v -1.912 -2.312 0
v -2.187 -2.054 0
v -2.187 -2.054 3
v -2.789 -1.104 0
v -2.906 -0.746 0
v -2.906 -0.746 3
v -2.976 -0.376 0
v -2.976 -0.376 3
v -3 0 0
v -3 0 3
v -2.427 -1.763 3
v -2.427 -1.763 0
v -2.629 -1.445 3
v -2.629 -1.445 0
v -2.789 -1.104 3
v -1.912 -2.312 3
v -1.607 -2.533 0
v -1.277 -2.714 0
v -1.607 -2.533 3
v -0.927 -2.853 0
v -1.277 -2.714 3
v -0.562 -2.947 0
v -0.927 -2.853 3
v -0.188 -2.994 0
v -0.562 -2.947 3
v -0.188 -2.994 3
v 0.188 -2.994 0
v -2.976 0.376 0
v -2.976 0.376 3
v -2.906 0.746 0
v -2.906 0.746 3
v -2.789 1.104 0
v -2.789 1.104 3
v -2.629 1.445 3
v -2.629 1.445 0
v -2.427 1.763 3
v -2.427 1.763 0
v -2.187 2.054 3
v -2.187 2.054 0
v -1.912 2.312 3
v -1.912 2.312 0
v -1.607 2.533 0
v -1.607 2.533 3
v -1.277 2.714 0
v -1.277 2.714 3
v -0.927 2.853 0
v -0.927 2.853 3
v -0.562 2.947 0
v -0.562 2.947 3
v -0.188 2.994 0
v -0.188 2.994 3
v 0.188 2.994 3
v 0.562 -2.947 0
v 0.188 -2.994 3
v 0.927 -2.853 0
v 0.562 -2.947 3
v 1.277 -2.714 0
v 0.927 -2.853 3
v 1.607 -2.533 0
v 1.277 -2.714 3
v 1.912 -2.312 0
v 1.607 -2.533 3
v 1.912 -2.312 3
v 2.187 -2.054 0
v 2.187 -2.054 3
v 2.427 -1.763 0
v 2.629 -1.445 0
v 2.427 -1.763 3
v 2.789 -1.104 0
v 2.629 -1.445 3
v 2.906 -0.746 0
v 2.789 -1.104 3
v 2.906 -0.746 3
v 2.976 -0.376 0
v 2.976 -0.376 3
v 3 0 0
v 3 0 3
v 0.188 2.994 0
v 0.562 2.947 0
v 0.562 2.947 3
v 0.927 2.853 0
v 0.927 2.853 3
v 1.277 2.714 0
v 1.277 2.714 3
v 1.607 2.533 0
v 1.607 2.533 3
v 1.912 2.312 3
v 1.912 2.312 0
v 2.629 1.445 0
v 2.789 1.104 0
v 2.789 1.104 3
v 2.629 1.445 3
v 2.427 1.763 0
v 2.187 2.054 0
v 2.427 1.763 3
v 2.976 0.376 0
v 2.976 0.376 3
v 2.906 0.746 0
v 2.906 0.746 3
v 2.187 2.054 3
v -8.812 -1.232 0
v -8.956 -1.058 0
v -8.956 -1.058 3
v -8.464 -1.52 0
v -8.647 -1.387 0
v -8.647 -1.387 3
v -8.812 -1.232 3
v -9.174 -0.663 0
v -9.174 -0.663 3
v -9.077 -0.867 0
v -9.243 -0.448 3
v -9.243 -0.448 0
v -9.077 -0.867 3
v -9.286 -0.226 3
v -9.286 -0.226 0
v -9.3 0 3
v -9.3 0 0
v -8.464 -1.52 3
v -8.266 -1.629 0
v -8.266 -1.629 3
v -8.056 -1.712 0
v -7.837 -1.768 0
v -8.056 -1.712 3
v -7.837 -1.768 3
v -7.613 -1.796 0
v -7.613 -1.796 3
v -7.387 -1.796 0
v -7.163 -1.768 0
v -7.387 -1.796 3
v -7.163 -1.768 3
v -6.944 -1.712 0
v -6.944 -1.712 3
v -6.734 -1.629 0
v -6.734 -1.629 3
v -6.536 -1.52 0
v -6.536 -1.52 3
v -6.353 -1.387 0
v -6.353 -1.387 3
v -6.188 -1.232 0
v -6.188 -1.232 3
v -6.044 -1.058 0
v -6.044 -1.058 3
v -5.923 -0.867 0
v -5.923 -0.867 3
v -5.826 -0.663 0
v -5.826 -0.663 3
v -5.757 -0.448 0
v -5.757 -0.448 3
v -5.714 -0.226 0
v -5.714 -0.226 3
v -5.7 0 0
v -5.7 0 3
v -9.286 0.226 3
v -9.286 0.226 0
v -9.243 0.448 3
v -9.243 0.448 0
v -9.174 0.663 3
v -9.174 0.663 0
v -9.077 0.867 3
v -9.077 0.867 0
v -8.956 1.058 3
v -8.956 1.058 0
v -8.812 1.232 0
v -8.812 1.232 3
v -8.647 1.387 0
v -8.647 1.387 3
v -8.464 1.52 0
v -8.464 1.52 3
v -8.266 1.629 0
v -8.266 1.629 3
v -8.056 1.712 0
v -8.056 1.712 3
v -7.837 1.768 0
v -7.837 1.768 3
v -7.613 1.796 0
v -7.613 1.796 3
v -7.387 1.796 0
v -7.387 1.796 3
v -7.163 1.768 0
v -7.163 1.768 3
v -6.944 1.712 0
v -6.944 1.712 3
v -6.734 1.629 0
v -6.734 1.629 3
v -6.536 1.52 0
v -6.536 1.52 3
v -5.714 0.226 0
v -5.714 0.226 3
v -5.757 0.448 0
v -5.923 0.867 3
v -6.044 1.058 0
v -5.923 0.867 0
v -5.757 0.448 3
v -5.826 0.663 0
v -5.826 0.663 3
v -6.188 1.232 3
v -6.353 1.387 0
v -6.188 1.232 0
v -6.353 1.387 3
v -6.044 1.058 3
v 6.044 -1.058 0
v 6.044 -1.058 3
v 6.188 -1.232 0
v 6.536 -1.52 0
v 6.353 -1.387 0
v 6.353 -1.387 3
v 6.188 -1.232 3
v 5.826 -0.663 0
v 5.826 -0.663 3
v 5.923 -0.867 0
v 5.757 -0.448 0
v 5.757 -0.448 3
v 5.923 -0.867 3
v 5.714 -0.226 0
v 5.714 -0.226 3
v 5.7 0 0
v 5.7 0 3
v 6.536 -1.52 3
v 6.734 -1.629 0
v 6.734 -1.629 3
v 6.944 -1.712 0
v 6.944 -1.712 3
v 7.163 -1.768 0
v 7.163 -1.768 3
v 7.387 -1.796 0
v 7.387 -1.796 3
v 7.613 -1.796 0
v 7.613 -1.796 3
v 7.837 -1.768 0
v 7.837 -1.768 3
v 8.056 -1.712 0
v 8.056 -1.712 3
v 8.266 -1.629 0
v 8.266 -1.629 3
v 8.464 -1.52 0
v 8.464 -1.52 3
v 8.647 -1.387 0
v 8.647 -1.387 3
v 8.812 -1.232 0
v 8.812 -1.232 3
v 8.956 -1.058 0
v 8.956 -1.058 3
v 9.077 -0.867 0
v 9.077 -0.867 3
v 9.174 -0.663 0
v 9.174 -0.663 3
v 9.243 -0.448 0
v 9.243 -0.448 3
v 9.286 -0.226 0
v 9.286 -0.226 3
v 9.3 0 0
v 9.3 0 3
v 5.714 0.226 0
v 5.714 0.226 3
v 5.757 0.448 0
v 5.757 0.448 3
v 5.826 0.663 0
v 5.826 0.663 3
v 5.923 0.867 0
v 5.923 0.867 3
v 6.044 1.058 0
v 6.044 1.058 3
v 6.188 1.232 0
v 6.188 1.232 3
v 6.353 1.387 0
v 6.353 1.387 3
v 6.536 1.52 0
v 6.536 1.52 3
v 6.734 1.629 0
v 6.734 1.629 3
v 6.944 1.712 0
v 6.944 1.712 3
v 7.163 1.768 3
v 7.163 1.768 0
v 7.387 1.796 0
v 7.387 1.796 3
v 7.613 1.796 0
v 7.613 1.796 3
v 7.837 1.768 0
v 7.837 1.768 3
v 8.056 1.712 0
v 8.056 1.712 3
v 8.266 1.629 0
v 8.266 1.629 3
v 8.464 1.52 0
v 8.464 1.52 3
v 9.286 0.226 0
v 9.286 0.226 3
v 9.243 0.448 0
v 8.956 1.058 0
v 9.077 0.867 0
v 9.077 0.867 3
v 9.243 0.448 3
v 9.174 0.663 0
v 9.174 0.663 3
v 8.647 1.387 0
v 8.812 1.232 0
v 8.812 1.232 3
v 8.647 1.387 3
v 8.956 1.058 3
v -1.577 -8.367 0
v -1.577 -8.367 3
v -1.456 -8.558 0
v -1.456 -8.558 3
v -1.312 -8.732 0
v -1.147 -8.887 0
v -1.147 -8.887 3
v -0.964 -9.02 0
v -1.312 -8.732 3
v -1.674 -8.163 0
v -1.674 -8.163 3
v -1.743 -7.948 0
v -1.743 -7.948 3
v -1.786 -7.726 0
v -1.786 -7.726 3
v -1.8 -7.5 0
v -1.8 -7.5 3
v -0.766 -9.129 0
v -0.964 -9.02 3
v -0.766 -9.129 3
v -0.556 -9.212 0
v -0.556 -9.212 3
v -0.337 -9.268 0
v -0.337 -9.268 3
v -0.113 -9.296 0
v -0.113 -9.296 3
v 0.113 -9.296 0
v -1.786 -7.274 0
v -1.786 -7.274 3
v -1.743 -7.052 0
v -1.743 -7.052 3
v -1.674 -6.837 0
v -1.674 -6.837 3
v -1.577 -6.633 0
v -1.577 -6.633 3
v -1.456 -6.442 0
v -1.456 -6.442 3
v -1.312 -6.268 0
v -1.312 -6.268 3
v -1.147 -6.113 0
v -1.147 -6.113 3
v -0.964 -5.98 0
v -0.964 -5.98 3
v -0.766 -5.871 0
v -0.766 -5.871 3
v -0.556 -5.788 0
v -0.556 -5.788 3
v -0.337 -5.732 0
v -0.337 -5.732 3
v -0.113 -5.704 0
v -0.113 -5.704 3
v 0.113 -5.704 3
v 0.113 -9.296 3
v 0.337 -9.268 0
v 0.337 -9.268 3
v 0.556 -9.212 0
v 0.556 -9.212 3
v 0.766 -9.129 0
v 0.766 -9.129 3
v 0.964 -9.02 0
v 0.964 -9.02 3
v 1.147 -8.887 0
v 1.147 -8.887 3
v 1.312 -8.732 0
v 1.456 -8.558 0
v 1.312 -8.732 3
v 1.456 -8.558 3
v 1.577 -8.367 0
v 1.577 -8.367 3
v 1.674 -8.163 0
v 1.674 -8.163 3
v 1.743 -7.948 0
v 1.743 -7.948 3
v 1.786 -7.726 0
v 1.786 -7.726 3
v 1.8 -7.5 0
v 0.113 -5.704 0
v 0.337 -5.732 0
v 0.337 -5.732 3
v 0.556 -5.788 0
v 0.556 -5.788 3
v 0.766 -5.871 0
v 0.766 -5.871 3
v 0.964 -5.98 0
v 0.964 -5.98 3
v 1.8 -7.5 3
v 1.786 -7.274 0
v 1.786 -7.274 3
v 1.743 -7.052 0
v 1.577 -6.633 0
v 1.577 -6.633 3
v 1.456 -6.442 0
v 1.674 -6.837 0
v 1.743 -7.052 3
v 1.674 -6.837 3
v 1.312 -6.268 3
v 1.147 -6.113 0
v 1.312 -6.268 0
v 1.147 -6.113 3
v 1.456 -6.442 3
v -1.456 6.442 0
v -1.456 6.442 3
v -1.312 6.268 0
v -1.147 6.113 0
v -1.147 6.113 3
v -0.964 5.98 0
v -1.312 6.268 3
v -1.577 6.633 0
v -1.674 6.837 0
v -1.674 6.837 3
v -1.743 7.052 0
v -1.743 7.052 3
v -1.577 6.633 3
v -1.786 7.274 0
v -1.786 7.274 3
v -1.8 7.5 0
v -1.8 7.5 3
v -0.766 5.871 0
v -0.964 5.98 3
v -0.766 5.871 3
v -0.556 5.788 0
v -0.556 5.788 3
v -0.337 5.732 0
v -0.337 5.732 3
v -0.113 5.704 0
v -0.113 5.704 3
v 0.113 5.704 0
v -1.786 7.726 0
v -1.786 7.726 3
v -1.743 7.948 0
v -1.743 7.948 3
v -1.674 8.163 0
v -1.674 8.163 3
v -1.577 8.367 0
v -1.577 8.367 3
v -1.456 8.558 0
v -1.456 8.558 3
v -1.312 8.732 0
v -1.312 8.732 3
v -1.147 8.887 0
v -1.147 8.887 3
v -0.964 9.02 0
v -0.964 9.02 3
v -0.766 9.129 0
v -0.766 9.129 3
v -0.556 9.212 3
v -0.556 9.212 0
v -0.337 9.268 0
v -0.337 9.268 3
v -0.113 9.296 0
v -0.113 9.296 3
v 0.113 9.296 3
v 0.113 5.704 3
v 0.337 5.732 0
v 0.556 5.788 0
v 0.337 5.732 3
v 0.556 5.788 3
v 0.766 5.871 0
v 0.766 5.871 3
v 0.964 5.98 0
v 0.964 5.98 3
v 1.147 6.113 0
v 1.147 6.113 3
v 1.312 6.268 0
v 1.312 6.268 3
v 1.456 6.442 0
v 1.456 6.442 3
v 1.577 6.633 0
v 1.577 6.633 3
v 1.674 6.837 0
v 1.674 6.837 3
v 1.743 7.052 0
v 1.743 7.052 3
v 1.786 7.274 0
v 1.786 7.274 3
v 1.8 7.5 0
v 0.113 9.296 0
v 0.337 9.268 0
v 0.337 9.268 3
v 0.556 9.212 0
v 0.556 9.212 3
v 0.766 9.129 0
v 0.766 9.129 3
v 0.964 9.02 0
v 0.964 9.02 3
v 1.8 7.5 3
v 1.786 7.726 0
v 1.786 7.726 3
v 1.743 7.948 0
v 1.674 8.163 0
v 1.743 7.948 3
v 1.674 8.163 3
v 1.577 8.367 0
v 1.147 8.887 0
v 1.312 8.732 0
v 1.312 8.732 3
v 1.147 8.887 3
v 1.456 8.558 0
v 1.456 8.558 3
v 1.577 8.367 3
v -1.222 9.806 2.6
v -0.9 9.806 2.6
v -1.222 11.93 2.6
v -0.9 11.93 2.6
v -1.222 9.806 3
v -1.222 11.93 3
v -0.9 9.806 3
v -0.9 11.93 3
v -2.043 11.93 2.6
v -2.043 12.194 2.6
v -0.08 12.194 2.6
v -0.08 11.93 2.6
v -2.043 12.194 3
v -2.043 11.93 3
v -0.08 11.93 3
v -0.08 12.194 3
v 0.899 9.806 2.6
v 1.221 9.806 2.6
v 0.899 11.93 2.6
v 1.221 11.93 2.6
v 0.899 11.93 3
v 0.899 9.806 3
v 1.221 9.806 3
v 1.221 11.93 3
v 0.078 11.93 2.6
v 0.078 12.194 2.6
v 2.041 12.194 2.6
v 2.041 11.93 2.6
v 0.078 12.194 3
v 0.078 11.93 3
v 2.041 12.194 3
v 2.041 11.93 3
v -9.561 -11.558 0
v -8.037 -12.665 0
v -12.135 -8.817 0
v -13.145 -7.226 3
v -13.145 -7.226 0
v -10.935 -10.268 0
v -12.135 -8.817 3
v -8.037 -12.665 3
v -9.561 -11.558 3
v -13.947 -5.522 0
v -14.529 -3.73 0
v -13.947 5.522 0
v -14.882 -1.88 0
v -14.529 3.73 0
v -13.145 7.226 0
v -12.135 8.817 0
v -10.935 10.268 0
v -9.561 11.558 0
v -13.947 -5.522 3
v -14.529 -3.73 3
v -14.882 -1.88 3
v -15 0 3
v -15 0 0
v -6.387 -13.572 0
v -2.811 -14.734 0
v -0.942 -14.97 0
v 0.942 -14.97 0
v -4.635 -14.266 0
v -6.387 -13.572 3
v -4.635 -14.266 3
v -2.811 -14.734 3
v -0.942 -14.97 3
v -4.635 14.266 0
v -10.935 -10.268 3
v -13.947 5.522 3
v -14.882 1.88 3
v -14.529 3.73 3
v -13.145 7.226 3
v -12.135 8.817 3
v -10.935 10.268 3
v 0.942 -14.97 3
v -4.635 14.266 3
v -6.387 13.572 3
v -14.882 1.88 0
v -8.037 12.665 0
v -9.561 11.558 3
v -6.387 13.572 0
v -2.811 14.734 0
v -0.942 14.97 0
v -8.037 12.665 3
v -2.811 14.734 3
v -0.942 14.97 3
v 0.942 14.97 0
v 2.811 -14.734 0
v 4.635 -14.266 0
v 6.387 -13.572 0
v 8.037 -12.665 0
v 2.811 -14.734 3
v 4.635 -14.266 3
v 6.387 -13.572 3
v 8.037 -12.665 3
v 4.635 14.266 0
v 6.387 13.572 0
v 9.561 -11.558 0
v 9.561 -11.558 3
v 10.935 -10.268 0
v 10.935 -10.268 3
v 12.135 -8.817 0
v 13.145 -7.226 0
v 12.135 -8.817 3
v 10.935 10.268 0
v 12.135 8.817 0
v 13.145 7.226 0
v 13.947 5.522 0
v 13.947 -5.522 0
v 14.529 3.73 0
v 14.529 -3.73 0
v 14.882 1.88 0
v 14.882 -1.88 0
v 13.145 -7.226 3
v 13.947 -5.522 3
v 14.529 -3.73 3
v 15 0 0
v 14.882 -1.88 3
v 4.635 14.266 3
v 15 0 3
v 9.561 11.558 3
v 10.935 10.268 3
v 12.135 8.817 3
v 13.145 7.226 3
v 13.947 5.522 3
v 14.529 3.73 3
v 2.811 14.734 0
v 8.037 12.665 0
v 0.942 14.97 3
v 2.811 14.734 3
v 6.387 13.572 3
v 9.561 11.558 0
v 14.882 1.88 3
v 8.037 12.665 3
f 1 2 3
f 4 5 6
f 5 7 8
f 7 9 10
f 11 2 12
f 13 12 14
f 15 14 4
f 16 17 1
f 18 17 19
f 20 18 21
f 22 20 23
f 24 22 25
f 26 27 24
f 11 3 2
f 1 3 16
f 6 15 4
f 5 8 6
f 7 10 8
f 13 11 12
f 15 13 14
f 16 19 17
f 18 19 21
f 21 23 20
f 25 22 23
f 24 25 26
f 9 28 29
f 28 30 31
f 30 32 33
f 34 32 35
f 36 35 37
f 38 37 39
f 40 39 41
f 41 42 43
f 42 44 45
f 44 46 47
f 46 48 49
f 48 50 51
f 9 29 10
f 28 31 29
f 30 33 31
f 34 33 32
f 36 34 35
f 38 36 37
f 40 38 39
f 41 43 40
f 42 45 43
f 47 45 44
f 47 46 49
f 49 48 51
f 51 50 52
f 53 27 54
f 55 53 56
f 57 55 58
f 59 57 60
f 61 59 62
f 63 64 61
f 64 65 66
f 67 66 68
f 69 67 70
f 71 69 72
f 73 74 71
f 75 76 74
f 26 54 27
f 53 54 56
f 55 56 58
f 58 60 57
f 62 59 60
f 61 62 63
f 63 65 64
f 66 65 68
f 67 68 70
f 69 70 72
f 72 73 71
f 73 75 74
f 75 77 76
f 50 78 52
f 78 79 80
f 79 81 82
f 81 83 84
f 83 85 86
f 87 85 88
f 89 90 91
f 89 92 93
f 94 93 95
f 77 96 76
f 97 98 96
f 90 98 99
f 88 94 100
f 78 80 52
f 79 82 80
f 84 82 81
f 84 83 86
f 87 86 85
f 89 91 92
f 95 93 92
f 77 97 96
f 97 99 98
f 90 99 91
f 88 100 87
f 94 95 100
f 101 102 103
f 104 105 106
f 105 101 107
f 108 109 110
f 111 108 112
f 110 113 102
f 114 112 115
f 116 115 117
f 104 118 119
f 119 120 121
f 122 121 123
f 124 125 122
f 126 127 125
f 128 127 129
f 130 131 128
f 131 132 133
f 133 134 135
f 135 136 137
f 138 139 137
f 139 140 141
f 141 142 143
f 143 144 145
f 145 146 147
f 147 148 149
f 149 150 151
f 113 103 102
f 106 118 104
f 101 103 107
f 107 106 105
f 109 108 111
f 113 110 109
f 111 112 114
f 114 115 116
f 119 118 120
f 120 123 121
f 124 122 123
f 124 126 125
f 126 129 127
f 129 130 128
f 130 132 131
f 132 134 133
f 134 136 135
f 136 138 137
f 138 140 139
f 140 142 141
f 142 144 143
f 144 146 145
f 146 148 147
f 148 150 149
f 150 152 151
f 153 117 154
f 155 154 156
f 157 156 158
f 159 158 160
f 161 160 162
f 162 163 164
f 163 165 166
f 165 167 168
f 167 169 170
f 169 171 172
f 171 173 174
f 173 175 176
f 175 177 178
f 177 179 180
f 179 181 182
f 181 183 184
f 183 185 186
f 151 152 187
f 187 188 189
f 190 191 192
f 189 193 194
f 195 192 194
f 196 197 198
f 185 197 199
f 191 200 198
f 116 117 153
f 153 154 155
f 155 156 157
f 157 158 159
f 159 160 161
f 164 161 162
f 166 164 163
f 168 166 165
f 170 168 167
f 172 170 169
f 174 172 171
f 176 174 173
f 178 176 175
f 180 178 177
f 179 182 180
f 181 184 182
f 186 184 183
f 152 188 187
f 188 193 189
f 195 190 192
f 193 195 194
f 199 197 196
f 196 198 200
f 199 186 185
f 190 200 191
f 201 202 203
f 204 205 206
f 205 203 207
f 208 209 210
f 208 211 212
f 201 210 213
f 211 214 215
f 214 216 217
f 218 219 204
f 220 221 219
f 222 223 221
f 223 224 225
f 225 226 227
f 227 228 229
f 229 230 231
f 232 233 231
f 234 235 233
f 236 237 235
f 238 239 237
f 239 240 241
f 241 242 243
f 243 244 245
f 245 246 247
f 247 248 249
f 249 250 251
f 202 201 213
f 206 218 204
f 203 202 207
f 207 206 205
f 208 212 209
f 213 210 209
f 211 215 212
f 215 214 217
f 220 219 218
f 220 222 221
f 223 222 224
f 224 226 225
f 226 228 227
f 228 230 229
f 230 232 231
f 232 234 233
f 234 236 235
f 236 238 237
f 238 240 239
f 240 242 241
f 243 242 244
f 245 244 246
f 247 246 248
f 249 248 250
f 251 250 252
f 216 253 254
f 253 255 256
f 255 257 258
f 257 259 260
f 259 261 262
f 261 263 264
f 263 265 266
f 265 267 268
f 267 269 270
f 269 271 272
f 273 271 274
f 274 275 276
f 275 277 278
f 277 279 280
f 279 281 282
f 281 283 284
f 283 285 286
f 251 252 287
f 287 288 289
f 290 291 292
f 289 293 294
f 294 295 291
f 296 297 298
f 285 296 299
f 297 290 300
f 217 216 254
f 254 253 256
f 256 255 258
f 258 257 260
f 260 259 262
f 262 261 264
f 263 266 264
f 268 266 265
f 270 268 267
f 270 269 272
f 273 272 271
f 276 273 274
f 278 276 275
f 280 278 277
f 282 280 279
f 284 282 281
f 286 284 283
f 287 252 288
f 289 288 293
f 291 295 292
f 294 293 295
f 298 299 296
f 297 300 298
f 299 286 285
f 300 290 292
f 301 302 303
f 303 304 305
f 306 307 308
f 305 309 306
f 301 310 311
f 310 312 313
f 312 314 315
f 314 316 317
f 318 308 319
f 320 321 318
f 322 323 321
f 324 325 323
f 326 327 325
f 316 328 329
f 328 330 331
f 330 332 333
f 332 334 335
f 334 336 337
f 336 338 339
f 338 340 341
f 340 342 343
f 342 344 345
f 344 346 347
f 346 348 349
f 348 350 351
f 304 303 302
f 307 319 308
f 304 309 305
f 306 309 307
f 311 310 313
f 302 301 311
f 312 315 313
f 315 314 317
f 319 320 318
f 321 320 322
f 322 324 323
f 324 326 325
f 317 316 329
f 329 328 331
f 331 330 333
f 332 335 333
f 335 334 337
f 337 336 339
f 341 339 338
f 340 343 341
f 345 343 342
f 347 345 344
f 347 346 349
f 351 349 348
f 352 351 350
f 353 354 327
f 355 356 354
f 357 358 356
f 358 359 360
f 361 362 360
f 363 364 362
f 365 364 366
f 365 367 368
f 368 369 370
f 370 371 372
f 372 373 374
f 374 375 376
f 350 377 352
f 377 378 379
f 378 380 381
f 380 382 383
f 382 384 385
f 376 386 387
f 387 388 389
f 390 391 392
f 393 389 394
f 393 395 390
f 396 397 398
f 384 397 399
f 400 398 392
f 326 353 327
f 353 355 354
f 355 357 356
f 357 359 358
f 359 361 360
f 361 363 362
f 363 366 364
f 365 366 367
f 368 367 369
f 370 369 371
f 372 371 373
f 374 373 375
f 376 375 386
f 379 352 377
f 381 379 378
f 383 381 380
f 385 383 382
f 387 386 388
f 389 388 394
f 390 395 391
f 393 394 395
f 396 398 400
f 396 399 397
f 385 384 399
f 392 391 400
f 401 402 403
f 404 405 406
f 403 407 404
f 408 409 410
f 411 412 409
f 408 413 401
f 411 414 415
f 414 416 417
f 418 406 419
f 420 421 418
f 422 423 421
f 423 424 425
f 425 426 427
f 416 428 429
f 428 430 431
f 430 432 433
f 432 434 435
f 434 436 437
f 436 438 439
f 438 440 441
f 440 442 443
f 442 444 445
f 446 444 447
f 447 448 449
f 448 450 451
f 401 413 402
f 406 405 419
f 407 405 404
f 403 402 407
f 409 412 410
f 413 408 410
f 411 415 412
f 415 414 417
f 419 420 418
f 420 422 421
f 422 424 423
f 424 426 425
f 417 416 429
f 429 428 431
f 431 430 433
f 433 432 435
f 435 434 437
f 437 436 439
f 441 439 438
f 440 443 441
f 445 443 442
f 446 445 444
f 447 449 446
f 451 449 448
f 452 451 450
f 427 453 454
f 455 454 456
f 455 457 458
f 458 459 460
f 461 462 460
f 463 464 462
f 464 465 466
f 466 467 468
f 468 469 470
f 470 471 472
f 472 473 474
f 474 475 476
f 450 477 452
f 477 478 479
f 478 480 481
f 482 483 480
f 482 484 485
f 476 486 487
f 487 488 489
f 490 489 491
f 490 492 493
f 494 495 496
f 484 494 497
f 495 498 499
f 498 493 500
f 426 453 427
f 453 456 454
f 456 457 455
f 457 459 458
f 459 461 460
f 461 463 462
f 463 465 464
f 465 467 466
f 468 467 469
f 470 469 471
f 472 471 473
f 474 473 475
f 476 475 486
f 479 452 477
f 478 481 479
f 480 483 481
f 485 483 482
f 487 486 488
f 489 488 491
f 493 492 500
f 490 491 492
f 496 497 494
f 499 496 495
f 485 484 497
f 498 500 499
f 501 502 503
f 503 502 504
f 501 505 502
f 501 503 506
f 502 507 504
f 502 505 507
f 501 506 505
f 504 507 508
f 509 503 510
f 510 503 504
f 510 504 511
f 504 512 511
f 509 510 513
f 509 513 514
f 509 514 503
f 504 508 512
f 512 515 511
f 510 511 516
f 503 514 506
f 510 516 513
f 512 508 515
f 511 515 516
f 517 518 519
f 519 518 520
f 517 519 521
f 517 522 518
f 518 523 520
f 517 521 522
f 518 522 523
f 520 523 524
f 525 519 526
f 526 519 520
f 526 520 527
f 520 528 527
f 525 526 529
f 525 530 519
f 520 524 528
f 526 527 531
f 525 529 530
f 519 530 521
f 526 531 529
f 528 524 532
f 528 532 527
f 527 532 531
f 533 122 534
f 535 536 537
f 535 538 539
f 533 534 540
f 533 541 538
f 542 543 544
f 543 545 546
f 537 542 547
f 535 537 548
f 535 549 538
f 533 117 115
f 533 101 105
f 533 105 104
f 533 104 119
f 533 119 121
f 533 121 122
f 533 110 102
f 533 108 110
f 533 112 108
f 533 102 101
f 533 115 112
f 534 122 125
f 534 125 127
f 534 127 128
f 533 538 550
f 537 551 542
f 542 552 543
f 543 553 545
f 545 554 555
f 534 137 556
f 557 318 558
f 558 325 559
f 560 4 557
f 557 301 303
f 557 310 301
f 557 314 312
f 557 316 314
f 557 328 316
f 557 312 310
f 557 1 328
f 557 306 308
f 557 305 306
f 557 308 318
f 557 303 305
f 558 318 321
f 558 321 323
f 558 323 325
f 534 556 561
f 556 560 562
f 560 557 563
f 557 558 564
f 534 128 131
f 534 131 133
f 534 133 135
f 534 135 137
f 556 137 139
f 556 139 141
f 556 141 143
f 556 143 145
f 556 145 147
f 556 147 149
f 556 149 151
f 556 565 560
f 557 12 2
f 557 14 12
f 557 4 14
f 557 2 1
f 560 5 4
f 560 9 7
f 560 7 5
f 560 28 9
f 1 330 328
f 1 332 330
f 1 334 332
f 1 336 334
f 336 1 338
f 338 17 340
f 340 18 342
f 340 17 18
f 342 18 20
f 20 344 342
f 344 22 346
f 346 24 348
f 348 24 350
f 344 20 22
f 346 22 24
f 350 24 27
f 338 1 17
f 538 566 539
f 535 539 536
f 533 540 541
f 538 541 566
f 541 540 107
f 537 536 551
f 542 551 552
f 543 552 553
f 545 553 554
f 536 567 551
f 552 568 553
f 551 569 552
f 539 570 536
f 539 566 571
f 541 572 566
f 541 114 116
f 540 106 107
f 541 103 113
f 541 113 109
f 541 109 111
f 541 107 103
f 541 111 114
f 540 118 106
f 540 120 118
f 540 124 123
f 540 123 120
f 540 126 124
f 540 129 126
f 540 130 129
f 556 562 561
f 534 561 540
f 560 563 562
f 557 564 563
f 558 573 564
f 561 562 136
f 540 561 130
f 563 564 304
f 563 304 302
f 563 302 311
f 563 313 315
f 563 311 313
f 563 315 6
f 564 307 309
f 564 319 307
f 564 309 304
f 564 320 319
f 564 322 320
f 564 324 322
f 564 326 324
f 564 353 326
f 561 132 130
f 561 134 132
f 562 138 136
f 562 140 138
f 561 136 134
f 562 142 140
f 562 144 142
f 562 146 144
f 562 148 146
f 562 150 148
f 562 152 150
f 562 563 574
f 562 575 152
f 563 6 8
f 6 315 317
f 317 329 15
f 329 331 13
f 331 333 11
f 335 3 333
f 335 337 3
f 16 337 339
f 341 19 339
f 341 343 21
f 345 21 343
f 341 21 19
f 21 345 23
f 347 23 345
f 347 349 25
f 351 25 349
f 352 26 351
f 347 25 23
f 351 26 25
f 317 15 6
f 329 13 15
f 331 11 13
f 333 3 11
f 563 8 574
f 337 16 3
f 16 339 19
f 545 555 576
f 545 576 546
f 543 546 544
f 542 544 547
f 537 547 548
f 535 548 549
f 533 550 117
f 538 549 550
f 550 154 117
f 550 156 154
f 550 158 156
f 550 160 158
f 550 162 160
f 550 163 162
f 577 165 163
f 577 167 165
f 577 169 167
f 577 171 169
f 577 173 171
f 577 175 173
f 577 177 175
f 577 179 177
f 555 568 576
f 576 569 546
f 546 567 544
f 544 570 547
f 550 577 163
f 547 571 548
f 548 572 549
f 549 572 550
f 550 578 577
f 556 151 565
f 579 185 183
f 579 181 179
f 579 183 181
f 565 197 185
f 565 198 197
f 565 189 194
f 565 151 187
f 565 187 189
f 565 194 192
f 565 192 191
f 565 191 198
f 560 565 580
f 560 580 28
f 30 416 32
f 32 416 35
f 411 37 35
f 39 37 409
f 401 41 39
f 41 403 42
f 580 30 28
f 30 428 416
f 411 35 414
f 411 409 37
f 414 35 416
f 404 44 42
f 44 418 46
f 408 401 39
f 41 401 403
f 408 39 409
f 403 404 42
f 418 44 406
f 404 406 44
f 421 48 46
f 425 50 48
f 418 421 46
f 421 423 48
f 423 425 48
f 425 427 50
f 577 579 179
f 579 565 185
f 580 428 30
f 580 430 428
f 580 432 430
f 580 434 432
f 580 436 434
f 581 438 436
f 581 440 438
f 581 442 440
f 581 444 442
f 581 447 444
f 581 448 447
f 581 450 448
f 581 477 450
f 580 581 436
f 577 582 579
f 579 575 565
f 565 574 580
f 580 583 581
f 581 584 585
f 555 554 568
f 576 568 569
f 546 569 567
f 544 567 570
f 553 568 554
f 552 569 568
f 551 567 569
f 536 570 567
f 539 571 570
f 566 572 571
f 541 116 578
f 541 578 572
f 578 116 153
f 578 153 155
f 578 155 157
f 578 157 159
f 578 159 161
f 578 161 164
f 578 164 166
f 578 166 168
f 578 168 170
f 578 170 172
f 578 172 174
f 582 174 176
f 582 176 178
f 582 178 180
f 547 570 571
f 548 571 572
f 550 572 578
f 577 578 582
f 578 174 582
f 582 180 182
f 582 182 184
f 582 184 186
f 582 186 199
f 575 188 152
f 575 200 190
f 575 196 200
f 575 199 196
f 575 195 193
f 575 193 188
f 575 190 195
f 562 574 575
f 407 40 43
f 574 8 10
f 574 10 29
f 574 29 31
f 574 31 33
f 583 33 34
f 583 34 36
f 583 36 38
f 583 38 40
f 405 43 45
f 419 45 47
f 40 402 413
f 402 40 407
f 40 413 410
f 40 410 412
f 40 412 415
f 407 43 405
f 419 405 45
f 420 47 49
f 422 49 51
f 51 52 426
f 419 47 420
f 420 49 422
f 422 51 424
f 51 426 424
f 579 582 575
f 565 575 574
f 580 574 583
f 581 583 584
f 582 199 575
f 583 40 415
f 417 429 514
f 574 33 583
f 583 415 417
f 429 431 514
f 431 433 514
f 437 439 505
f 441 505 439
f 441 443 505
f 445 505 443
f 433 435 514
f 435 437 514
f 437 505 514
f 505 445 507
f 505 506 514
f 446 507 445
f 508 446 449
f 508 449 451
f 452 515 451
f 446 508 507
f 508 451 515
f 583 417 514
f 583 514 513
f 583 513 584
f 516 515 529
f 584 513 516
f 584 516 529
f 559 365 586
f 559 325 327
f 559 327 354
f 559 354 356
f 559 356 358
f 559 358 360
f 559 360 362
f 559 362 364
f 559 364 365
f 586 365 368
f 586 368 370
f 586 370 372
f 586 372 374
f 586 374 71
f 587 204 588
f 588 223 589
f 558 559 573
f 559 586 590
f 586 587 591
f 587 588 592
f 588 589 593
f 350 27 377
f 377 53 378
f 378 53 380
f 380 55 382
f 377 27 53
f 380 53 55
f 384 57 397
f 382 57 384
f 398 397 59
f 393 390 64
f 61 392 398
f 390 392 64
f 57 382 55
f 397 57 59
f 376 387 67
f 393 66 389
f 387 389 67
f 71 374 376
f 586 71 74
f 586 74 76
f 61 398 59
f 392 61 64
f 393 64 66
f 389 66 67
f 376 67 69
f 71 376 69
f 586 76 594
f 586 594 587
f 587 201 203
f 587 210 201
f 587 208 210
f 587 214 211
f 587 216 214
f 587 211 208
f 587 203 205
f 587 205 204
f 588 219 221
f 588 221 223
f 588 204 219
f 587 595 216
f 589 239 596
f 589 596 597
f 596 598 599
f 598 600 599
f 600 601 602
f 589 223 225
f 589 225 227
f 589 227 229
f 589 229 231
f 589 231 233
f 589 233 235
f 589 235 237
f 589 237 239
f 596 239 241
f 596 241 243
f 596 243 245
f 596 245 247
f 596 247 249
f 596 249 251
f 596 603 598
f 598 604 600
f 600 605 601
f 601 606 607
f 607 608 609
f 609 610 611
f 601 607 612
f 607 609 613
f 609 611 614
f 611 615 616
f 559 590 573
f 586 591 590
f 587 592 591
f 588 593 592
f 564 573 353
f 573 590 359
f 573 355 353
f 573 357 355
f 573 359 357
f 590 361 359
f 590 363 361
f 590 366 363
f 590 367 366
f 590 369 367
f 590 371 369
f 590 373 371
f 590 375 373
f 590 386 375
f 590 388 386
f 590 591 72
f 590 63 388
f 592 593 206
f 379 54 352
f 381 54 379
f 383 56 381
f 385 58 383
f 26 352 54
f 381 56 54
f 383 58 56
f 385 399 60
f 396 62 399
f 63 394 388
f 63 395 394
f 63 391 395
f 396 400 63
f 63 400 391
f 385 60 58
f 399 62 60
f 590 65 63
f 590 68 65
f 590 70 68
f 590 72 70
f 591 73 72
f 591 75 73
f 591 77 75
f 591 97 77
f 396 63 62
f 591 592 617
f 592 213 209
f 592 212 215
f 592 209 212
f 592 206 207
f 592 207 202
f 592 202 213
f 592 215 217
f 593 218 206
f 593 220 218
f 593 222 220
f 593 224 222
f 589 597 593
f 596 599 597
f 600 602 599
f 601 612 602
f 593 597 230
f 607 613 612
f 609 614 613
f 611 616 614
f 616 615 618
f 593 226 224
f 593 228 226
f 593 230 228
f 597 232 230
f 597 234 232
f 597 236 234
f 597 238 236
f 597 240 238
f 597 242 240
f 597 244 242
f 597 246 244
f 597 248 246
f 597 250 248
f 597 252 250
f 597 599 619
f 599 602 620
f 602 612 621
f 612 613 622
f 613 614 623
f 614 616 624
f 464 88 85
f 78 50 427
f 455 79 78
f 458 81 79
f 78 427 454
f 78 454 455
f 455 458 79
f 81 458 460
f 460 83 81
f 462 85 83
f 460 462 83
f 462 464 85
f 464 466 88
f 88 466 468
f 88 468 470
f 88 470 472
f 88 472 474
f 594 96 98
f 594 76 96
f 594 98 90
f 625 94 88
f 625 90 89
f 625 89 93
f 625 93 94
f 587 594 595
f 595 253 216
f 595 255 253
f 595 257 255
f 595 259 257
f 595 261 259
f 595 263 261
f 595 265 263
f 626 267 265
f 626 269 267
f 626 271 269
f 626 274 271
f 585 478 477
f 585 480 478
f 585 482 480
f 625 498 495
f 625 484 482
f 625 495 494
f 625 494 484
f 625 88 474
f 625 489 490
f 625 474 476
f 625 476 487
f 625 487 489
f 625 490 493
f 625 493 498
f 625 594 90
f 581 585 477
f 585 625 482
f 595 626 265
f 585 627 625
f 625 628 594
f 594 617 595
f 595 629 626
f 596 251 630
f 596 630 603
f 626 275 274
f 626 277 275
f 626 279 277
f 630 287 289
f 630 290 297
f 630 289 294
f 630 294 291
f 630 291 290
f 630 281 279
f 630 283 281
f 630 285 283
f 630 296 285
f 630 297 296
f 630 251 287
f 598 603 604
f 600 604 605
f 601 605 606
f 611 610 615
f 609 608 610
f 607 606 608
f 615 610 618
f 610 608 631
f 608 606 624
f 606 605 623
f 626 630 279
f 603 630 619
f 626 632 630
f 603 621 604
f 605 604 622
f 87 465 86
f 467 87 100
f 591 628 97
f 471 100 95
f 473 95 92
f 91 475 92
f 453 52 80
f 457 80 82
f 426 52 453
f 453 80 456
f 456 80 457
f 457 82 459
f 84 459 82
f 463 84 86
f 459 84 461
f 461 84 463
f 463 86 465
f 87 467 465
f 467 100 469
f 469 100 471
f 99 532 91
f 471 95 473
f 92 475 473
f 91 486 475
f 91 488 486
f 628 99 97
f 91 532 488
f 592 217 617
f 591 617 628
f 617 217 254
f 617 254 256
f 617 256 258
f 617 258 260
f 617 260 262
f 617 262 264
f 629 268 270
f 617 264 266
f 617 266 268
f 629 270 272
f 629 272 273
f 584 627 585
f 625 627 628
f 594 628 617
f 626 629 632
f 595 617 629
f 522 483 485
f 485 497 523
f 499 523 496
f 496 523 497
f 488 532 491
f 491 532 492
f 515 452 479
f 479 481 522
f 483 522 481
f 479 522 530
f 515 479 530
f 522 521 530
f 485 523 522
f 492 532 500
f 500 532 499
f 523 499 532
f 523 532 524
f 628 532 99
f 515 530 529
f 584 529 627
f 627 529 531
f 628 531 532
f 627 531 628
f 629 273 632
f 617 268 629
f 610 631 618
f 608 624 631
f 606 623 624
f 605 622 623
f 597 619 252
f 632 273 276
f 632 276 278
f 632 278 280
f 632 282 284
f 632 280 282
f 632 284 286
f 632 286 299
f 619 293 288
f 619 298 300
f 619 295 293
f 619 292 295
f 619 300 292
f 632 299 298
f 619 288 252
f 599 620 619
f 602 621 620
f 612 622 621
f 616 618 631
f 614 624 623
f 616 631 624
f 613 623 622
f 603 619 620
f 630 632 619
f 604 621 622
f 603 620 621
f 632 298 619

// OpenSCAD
$fn = 50;

difference() {
	union() {
		translate(v = [0, 0, -25]) {
			rotate(a = [0, 0, 0]) {
				difference() {
					union() {
						translate(v = [0, 0, 25.0]) {
							cylinder(h = 3, r = 15.0);
						}
					}
					union() {
						translate(v = [0, 0, 25]) {
							rotate(a = [0, 0, 0]) {
								difference() {
									union() {
										translate(v = [0, 0, -10.0]) {
											cylinder(h = 10, r = 1.5);
										}
										cylinder(h = 253.2, r = 3.0);
										translate(v = [0, 0, -10.0]) {
											cylinder(h = 10, r = 1.8);
										}
										translate(v = [0, 0, -10.0]) {
											cylinder(h = 10, r = 1.5);
										}
									}
									union();
								}
							}
						}
						translate(v = [-7.5, 0, 24]) {
							cylinder(h = 5, r = 1.8);
						}
						translate(v = [7.5, 0, 24]) {
							cylinder(h = 5, r = 1.8);
						}
						translate(v = [0, -7.5, 24]) {
							cylinder(h = 5, r = 1.8);
						}
						translate(v = [0, 7.5, 24]) {
							cylinder(h = 5, r = 1.8);
						}
						translate(v = [0, 11, 27.6]) {
							linear_extrude(height = 0.45) {
								text(font = "Liberation Sans", halign = "center", size = 2.5, text = "TT", valign = "center");
							}
						}
					}
				}
			}
		}
	}
	union();
}
